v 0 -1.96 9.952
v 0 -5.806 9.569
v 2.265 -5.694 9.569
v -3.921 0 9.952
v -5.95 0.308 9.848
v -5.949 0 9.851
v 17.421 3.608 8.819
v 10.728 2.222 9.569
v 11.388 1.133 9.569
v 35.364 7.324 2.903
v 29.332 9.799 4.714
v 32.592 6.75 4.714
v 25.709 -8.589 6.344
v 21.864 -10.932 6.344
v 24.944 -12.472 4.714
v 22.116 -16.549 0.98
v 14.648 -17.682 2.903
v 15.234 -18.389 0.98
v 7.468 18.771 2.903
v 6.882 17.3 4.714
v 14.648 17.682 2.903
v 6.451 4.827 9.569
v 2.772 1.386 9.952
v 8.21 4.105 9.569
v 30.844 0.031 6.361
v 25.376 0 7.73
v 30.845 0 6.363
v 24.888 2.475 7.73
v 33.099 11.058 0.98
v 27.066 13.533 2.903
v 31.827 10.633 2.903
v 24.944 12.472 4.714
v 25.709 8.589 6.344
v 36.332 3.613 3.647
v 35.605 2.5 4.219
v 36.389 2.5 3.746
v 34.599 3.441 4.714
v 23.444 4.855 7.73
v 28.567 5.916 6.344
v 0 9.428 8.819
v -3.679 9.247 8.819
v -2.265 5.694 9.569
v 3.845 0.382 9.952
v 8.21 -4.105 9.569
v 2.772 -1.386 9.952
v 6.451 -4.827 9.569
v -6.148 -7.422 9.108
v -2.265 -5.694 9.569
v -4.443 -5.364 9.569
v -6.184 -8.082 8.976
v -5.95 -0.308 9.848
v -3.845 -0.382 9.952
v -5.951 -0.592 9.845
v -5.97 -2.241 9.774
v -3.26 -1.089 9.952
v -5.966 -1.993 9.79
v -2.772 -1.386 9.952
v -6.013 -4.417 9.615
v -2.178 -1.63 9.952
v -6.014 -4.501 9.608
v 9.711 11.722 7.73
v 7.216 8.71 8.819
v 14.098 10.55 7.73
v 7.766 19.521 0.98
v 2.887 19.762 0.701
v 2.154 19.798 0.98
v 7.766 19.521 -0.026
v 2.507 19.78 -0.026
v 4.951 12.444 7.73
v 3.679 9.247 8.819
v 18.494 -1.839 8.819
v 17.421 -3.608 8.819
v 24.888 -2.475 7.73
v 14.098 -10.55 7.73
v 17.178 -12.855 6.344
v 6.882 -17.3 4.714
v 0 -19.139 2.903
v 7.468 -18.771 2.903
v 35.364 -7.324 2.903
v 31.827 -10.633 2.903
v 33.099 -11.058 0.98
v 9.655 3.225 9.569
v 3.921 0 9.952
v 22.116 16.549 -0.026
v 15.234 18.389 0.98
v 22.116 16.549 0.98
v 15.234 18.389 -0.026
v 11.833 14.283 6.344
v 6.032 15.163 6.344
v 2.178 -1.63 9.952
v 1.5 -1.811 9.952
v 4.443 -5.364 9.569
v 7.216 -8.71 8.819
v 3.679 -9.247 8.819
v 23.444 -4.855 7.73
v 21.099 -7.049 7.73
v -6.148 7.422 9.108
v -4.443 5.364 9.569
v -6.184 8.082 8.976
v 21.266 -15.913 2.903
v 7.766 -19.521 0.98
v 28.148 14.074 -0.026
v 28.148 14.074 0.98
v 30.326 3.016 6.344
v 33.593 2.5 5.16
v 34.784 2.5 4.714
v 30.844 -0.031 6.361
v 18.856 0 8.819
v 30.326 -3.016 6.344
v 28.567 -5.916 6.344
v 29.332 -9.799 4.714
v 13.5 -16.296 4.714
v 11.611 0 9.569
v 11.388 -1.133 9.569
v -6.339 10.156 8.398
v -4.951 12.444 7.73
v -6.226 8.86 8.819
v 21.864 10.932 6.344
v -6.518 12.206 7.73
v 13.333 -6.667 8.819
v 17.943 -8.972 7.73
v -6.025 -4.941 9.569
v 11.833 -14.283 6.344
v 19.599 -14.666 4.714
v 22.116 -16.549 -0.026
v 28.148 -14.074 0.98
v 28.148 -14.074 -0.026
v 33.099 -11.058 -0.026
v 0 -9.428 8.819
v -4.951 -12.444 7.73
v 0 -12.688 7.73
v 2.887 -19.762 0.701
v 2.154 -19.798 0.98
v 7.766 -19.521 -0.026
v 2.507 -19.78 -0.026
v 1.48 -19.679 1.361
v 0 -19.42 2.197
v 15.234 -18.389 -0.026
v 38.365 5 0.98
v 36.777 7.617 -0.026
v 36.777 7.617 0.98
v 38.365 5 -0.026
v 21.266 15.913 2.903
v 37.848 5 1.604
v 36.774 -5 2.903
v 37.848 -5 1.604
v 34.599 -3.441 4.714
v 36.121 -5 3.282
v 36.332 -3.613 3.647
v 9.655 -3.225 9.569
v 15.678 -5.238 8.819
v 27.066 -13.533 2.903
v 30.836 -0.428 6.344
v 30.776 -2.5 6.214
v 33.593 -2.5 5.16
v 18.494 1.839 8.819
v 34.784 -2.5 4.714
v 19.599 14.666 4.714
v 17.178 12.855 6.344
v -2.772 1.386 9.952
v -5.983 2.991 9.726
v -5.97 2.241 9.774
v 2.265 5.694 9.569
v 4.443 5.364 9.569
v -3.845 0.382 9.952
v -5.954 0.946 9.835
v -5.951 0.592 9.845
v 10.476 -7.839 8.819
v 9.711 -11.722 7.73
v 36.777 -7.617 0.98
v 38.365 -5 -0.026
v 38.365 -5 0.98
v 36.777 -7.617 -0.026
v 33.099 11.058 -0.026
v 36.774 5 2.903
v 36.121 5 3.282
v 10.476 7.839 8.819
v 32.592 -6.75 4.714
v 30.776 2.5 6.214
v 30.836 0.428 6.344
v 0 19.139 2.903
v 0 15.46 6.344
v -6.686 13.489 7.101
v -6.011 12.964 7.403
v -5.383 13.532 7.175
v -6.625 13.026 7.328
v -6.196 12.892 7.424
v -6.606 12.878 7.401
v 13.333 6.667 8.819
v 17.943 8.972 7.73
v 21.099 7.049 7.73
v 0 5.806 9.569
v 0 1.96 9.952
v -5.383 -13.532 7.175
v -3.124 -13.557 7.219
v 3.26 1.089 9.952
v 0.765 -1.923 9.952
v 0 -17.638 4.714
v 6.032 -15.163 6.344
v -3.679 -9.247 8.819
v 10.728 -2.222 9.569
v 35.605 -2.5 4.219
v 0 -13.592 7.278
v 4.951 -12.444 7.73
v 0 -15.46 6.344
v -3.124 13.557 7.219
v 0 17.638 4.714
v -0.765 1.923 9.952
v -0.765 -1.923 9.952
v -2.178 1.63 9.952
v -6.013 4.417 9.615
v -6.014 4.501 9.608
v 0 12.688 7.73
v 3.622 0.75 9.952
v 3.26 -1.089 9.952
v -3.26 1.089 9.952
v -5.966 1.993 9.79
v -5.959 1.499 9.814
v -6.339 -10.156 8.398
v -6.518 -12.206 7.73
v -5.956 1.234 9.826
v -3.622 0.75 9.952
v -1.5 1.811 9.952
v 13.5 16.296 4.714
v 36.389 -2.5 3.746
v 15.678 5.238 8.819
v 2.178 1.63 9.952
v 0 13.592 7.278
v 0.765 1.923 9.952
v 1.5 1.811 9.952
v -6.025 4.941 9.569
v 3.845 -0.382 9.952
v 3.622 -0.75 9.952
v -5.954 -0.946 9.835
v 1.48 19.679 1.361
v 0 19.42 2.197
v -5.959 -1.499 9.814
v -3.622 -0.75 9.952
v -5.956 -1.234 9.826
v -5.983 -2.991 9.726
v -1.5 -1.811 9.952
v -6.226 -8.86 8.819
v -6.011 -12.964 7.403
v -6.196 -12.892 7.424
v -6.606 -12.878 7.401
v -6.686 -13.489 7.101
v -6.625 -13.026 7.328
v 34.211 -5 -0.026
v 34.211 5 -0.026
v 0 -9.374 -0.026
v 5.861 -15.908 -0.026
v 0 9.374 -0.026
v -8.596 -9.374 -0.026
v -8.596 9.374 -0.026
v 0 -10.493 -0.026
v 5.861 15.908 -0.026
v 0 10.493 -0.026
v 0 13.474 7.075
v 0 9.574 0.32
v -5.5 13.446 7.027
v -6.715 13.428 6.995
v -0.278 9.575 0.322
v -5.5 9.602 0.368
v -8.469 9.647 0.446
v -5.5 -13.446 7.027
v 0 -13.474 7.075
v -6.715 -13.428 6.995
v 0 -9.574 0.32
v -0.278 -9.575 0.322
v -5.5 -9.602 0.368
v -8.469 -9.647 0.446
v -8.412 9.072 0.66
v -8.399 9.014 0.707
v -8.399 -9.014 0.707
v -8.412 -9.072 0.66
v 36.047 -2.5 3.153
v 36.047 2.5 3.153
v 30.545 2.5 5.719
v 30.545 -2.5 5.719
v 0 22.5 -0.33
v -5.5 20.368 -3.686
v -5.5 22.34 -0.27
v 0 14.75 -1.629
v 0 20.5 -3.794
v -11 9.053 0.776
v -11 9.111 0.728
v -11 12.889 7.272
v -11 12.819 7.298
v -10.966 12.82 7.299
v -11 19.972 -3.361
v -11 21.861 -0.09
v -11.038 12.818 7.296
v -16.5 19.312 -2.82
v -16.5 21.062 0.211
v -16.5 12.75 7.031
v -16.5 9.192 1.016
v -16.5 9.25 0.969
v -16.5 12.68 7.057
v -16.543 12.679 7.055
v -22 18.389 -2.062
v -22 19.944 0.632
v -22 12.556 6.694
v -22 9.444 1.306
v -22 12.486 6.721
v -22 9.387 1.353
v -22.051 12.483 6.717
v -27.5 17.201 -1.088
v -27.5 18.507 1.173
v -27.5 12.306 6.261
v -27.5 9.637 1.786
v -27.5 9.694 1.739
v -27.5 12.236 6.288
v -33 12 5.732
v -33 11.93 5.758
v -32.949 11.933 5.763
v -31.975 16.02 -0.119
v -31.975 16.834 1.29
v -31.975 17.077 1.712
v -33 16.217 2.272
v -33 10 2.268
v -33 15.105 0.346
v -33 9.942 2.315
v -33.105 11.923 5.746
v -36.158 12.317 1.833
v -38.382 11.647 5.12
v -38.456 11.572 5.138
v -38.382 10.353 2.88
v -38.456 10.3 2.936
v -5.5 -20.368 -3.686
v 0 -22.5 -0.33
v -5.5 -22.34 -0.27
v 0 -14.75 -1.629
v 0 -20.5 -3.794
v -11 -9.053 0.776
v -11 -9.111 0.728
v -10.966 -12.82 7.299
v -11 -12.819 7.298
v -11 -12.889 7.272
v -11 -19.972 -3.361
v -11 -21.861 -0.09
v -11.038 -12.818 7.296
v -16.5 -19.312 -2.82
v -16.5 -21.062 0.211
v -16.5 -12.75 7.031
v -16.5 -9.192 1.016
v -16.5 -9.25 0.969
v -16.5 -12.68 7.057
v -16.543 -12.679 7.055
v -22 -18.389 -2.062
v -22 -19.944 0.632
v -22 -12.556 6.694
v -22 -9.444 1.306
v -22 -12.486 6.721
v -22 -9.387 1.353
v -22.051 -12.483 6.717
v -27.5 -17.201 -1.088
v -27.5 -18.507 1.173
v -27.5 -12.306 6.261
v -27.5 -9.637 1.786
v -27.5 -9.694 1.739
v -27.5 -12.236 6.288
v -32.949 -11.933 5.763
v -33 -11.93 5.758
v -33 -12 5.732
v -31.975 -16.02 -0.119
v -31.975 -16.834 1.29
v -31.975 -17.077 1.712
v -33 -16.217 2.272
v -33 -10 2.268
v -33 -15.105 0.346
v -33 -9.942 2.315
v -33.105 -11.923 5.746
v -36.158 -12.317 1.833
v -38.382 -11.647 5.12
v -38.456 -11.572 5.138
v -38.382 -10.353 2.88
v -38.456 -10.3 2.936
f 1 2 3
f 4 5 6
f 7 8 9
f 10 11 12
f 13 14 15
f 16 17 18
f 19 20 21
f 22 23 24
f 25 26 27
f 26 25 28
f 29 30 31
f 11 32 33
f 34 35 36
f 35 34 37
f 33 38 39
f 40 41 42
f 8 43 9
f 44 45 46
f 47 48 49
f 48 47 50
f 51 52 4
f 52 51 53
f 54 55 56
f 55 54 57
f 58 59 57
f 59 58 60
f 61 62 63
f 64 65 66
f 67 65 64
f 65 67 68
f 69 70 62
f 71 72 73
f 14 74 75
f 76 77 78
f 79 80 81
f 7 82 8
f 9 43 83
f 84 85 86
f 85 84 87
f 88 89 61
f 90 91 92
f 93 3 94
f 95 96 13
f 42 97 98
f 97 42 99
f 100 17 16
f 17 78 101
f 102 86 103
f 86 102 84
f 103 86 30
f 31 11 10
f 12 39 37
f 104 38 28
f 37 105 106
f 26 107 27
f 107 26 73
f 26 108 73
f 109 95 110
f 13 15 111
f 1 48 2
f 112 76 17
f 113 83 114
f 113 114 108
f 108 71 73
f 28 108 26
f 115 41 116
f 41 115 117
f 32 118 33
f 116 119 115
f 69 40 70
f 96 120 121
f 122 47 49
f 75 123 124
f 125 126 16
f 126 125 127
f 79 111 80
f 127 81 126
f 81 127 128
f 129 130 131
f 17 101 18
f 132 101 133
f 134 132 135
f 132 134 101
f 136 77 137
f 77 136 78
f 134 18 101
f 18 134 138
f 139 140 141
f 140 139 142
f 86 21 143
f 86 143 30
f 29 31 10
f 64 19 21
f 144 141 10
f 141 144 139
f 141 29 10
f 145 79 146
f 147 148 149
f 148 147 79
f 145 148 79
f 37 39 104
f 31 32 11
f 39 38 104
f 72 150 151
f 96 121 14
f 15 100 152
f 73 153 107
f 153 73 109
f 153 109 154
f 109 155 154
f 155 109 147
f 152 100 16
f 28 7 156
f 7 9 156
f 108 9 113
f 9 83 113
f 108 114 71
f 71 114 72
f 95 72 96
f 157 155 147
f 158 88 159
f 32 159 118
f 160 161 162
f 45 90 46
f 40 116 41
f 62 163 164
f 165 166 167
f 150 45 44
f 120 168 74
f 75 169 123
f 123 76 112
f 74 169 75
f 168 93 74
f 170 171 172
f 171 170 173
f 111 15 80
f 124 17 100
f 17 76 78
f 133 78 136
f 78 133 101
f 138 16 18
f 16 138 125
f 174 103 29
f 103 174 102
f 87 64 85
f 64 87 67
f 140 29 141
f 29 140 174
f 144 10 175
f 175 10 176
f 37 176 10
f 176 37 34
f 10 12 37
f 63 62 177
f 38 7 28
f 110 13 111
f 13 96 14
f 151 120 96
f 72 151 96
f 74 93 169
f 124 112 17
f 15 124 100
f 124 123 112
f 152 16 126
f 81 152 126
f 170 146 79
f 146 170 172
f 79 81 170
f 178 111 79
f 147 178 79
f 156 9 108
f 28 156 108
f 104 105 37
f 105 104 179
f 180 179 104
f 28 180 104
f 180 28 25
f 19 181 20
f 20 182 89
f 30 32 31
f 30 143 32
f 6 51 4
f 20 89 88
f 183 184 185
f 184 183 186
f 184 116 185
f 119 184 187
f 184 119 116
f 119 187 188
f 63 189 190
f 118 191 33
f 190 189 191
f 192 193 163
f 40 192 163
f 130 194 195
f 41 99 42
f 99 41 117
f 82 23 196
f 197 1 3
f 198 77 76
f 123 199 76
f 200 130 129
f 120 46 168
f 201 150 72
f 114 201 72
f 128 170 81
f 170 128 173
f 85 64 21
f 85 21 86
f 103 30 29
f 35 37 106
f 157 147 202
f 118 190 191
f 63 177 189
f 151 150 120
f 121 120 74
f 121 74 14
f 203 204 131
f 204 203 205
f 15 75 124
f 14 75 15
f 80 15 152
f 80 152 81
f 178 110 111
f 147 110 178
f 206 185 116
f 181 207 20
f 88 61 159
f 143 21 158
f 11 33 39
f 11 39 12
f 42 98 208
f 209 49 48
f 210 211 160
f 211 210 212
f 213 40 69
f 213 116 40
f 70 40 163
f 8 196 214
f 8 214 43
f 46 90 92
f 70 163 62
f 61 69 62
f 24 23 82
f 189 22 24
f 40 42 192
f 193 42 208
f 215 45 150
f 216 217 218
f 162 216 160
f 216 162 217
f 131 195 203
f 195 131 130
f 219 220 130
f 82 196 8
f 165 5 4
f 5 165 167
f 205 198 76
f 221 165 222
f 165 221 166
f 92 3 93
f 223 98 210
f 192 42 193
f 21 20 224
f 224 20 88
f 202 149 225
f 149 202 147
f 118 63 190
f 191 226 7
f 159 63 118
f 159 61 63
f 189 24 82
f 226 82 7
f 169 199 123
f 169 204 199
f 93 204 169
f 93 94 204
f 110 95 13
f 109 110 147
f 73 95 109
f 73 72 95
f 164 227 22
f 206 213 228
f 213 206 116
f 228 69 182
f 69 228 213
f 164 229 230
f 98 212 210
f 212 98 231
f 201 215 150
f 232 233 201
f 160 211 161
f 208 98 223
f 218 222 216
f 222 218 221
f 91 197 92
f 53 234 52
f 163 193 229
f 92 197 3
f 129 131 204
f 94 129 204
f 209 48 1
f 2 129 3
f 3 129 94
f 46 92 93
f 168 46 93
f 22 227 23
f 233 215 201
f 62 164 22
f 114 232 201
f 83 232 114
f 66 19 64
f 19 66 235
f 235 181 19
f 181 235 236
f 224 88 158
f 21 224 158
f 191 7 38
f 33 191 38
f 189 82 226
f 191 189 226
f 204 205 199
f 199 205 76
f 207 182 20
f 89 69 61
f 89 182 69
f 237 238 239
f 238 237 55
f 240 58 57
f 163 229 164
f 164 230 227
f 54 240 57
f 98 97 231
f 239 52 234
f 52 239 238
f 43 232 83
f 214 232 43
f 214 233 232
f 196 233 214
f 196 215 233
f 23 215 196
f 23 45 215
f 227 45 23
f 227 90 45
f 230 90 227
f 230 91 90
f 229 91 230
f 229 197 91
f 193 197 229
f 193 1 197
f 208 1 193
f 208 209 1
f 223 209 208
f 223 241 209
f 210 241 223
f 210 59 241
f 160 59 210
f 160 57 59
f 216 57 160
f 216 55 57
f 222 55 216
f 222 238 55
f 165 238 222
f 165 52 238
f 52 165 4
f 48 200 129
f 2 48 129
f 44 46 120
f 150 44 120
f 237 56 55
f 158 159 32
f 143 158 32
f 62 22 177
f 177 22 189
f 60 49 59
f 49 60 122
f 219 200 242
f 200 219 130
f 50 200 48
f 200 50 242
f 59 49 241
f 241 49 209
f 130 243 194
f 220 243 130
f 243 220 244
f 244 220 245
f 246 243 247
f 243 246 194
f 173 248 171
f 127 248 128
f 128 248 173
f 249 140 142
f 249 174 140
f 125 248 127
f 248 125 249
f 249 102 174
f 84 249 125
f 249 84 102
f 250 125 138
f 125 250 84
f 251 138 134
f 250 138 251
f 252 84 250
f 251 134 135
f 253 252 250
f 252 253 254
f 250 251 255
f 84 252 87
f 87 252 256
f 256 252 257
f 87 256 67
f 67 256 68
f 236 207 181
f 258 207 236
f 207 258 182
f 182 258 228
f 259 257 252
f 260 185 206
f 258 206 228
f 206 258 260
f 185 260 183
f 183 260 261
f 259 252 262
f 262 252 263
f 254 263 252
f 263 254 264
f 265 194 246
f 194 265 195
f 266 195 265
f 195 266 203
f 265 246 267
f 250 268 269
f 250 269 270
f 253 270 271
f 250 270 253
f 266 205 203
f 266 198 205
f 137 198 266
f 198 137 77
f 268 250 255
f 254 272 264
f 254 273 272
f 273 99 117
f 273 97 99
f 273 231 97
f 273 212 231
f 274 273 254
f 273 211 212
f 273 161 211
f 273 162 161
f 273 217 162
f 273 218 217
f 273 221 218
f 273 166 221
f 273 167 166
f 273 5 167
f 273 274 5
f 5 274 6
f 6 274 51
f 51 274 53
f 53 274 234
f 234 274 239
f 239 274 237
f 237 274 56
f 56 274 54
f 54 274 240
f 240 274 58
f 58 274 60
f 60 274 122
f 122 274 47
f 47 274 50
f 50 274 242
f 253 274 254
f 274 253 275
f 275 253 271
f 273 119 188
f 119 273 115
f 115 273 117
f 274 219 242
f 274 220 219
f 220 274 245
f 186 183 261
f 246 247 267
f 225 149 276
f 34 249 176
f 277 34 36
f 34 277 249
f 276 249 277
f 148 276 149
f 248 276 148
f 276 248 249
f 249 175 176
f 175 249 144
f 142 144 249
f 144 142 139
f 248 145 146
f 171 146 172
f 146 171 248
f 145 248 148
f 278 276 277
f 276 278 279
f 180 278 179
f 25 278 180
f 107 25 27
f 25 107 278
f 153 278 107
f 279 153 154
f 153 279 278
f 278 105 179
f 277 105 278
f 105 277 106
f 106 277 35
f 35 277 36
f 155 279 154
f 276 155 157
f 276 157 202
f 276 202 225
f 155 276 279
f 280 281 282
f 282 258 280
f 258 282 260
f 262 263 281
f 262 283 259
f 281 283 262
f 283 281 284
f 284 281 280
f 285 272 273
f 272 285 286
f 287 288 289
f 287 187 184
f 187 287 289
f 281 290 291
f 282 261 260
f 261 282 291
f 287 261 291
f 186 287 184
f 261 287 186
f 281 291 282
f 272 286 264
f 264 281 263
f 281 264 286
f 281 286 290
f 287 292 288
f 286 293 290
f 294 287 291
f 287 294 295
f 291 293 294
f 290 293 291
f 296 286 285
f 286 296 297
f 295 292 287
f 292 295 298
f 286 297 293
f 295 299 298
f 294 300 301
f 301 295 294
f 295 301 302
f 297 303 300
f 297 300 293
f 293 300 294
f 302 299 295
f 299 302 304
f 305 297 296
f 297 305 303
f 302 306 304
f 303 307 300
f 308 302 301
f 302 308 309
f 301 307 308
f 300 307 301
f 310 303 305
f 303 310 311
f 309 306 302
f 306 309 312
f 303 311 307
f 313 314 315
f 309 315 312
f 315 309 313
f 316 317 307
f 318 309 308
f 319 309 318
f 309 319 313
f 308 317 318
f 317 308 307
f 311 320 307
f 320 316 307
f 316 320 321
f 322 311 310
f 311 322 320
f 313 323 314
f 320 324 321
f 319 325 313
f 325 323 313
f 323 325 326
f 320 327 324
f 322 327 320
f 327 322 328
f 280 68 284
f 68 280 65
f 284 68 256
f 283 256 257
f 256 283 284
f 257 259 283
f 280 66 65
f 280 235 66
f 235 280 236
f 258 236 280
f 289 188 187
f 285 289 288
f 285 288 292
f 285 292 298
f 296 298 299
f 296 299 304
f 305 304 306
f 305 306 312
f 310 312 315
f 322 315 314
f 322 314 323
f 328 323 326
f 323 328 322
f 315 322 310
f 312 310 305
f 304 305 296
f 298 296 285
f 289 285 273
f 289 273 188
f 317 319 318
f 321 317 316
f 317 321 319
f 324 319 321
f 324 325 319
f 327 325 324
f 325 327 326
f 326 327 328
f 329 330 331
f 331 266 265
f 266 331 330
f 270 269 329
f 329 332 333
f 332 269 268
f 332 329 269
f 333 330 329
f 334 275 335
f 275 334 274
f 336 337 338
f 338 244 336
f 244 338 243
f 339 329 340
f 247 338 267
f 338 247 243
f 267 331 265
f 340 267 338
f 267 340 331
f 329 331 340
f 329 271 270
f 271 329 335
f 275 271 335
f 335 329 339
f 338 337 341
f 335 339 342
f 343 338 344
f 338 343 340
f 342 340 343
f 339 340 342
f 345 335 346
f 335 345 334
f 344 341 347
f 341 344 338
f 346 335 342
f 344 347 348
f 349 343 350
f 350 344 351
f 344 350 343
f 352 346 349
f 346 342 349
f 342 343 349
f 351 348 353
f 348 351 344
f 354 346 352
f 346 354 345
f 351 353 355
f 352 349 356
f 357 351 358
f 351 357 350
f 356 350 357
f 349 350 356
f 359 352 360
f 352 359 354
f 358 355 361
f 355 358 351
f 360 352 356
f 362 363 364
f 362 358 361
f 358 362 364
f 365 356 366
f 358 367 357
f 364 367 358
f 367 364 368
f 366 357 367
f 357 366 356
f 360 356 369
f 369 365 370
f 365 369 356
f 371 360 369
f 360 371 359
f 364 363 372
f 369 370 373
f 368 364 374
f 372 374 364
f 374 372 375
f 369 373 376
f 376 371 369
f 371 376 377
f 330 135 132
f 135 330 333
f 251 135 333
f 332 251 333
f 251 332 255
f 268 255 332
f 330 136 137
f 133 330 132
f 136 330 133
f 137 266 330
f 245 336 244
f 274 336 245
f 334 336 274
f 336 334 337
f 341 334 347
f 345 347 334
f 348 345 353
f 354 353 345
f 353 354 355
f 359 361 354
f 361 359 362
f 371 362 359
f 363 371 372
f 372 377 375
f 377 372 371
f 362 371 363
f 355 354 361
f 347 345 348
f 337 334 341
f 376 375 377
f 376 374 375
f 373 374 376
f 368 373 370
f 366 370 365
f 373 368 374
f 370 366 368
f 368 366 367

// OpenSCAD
// file: ../lib/util.scad
fn1 = 32;
fn2 = 16;

module util_half_sphere(radius, fn=fn1) {
    difference() {
        sphere(radius, $fn=fn);
        translate([0,0,-(radius+radius/19)])
            cube(2*radius+radius/10, center=true);
    }
}

function gcd(a,b) = a == b ? a : a > b ? gcd(a-b, b) : gcd(a, b-a);

module util_saucer(length, width, height, fn=fn1) {
    rad = gcd(length,gcd(width,height));
    //rad = 10;
    scale([length/(2*rad), width/(2*rad), height/rad])
        util_half_sphere(rad, fn);
}

module util_half_cylinder(length, radius, inner_fn=fn2, outer_fn=fn1) {
    maxval = max(length, 2*radius);
    intersection() {
        difference() {
            rotate([0,90,0])
                translate([0,0,-(length/2 + length/20)])
                    cylinder(length+length/10, radius, radius, $fn=inner_fn);
            
            translate([0,0,(maxval/2 + maxval/19)])
                cube(maxval+maxval/10, center=true);
        }
        
        translate([0,0,-(radius+radius/20)])
            cylinder(radius + radius/10, length/2, length/2, $fn=outer_fn);
    }
}

module util_body(length, width, height, upper_height, fn=fn1) {
    rad = gcd(length, gcd(width, upper_height));
    
    scale(.995) scale([length/(2*rad), width/(2*rad), 1])
        util_half_cylinder(2*rad, height, outer_fn=fn);
}

module util_graded_cylinder(height, radius_start, radius_end, grades=1, fn=fn1) {
    height_grade = height / grades;
    radius_grade = (radius_start - radius_end) / (grades * grades);
    for (i = [0 : 1 : grades]) {
        translate([0,0,i*height_grade])
            cylinder(height_grade, 
                     radius_start - i*radius_grade * i,
                     radius_start - (i+1) * radius_grade * (i+1),
                     $fn = fn);
    }
}

module util_nacelle(length, width, height, curved=false, up=true, front_bulge=false) {
    rad = min(width, height/2);
    grads = curved ? 6 : 1;
    scale_factor = front_bulge ? 1.1 : 1;
    direction = up ? -1 : 1;
    difference() {
        scale([1, width/ (2*rad), height/rad])
            difference() {
                union() {
                    rotate([0,-90,0])
                        rotate(30)
                            util_graded_cylinder(length-rad, rad, rad/2, grads, 6);
                    scale(scale_factor) 
                        rotate([0,90,0]) rotate(90) sphere(rad, $fn=6);
                }
                
                translate([-length/2, 0, direction * (height/2 + height/19)])
                    cube([length+length, width+width, height+height/10], center=true);
            }
        
        translate([-length-(curved?length/3:0), 0, -length/3])
            rotate([0,-45,0])
                cube(length, center=true);
    }
}

module util_mirrored(v) {
    children();
    mirror(v) children();
}

module util_ring(outer, inner, height) {
    difference() {
        translate([0,0,-height/2])
            cylinder(height, outer, outer);
        translate([0,0,-(height/2 + height/19)])
            cylinder(height+height/10, inner, inner);
    }
}

module util_star(radius, thick, num, half=false) {
    angle = 360/num;
    offset = half? angle/2 : 0;
    for (i = [0: 1: num]) {
        rotate(i* angle + offset)
            translate([radius/2,0,0])
                cube([radius, thick, thick], center=true);
    }
}

module util_ring_star(radius, thick, num, inner, half=false) {
    outer=inner+thick;
    avg = (inner + outer)/2;
    union() {
        difference() {
            util_star(radius, thick, num, half);
            cylinder(2*thick, outer, outer, $fn=num, center=true);
        }
        util_ring(outer, inner, thick);
    }
}

module util_hangar_disk(height, lower, upper, num, fn=fn1) {
    difference() {
            cylinder(height, lower, upper, $fn=fn, center=true);
        difference() {
            scale([1,1,22])
                util_star(1.1*upper, height/20, num, half=true);
            scale(.95)
                cylinder(height, lower, upper, $fn=fn, center=true);
        }
    }
}

module util_hangar_form(length, width, height, num, inner=0) {
    l = 0.6* max(length, width);
    h = 2.5* height;
    thick = min(height/20,1);
    inner = inner == 0 ? l/3 : inner;
    difference() {
        children();
        scale([1,1,h/thick]) 
            util_ring_star(l, thick, num, inner, half=true);
    }
    scale(.95) children();
}

module util_nacelle_bar(span, height, width, thickness) {
    rad = (span*span/(8*height) + height/2);
    outer = rad + thickness/2;
    inner = rad - thickness/2;
    difference(){
        translate([0,0,outer])
            rotate([0,90,0])
                util_ring(outer, inner, width);
    
        translate([0,0,1.1*outer+height])
            cube(2.2*outer, center=true);
    }
}

module util_q_sphere(rad, quadrant, faces) {
    x_sign = quadrant == 1 ? 1 :
             quadrant == 2 ? -1 :
             quadrant == 3 ? -1 :
             quadrant == 4 ? 1 : 0;
    z_sign = quadrant == 1 ? 1 :
             quadrant == 2 ? 1 :
             quadrant == 3 ? -1 :
             quadrant == 4 ? -1 : 0;
    
    difference() {
        sphere(rad, $fn=faces);

        translate([x_sign*(-1.1*rad - .01),0,0])
        cube(2.2*rad, center=true);

        translate([0,0,z_sign*(-1.1*rad - .01)])
        cube(2.2*rad, center=true);
    }
}

module util_ovoid(front_rad, back_rad, width, upper_rad, lower_rad, faces=32) {
    half_width = width/2;
    largest=max(front_rad, back_rad, half_width, upper_rad, lower_rad);
    smallest=min(front_rad, back_rad, half_width, upper_rad, lower_rad);
    
    union() {
        scale([front_rad/smallest, half_width/smallest, upper_rad/smallest])
        util_q_sphere(smallest, 1, faces);
        
        scale([front_rad/smallest, half_width/smallest, lower_rad/smallest])
        util_q_sphere(smallest, 4, faces);
        
        scale([back_rad/smallest, half_width/smallest, lower_rad/smallest])
        util_q_sphere(smallest, 3, faces);
        
        scale([back_rad/smallest, half_width/smallest, upper_rad/smallest])
        util_q_sphere(smallest, 2, faces);
    }
}
// main file
use <../lib/util.scad>;

module model1() {
    cylinder(2,20,15);
    mirror([0,0,1])
        cylinder(2,20,19);

    difference() {
        translate([-20,0,0])
            mirror([0,0,1])
                util_saucer(80,20,6);
        
        translate([-65,0,0])
            cube(100,center=true);
        
        translate([68,0,0])
            cube(100,center=true);
    }

    translate([-15,0,0]) {
        mirror([0,0,1])
            util_saucer(20,20,6);


        util_saucer(20,20,2);
    }

    translate([5,0,0])
        util_nacelle(25,20,3,curved=true);

    util_mirrored([0,1,0])
        translate([-15,10,-5])
            rotate([60,0,0])
                util_nacelle(35,5,12,curved=true,up=false);
}


module model2() {
    difference() {
        util_saucer(80,40,10);

        translate([-50,0,0])
            rotate([0,15,0])
                cube(80,center=true);

        util_mirrored([0,1,0])
            translate([-40,55,-1])
                rotate([-30,0,0])
                    cube(80,center=true);
            
        translate([40,0,0])
            rotate([0,30,0])
                cube(10,center=true);

        translate([35,0,6.4])
            rotate([0,-65,0])
                cube([5,5,7.5],center=true);

    }


    util_mirrored([0,1,0]) 
        translate([-0,11,4])
            rotate([60,0,0])
                util_nacelle(40,8,14,curved=true,up=false);

}

module attack() {
    model2();
}

attack();
